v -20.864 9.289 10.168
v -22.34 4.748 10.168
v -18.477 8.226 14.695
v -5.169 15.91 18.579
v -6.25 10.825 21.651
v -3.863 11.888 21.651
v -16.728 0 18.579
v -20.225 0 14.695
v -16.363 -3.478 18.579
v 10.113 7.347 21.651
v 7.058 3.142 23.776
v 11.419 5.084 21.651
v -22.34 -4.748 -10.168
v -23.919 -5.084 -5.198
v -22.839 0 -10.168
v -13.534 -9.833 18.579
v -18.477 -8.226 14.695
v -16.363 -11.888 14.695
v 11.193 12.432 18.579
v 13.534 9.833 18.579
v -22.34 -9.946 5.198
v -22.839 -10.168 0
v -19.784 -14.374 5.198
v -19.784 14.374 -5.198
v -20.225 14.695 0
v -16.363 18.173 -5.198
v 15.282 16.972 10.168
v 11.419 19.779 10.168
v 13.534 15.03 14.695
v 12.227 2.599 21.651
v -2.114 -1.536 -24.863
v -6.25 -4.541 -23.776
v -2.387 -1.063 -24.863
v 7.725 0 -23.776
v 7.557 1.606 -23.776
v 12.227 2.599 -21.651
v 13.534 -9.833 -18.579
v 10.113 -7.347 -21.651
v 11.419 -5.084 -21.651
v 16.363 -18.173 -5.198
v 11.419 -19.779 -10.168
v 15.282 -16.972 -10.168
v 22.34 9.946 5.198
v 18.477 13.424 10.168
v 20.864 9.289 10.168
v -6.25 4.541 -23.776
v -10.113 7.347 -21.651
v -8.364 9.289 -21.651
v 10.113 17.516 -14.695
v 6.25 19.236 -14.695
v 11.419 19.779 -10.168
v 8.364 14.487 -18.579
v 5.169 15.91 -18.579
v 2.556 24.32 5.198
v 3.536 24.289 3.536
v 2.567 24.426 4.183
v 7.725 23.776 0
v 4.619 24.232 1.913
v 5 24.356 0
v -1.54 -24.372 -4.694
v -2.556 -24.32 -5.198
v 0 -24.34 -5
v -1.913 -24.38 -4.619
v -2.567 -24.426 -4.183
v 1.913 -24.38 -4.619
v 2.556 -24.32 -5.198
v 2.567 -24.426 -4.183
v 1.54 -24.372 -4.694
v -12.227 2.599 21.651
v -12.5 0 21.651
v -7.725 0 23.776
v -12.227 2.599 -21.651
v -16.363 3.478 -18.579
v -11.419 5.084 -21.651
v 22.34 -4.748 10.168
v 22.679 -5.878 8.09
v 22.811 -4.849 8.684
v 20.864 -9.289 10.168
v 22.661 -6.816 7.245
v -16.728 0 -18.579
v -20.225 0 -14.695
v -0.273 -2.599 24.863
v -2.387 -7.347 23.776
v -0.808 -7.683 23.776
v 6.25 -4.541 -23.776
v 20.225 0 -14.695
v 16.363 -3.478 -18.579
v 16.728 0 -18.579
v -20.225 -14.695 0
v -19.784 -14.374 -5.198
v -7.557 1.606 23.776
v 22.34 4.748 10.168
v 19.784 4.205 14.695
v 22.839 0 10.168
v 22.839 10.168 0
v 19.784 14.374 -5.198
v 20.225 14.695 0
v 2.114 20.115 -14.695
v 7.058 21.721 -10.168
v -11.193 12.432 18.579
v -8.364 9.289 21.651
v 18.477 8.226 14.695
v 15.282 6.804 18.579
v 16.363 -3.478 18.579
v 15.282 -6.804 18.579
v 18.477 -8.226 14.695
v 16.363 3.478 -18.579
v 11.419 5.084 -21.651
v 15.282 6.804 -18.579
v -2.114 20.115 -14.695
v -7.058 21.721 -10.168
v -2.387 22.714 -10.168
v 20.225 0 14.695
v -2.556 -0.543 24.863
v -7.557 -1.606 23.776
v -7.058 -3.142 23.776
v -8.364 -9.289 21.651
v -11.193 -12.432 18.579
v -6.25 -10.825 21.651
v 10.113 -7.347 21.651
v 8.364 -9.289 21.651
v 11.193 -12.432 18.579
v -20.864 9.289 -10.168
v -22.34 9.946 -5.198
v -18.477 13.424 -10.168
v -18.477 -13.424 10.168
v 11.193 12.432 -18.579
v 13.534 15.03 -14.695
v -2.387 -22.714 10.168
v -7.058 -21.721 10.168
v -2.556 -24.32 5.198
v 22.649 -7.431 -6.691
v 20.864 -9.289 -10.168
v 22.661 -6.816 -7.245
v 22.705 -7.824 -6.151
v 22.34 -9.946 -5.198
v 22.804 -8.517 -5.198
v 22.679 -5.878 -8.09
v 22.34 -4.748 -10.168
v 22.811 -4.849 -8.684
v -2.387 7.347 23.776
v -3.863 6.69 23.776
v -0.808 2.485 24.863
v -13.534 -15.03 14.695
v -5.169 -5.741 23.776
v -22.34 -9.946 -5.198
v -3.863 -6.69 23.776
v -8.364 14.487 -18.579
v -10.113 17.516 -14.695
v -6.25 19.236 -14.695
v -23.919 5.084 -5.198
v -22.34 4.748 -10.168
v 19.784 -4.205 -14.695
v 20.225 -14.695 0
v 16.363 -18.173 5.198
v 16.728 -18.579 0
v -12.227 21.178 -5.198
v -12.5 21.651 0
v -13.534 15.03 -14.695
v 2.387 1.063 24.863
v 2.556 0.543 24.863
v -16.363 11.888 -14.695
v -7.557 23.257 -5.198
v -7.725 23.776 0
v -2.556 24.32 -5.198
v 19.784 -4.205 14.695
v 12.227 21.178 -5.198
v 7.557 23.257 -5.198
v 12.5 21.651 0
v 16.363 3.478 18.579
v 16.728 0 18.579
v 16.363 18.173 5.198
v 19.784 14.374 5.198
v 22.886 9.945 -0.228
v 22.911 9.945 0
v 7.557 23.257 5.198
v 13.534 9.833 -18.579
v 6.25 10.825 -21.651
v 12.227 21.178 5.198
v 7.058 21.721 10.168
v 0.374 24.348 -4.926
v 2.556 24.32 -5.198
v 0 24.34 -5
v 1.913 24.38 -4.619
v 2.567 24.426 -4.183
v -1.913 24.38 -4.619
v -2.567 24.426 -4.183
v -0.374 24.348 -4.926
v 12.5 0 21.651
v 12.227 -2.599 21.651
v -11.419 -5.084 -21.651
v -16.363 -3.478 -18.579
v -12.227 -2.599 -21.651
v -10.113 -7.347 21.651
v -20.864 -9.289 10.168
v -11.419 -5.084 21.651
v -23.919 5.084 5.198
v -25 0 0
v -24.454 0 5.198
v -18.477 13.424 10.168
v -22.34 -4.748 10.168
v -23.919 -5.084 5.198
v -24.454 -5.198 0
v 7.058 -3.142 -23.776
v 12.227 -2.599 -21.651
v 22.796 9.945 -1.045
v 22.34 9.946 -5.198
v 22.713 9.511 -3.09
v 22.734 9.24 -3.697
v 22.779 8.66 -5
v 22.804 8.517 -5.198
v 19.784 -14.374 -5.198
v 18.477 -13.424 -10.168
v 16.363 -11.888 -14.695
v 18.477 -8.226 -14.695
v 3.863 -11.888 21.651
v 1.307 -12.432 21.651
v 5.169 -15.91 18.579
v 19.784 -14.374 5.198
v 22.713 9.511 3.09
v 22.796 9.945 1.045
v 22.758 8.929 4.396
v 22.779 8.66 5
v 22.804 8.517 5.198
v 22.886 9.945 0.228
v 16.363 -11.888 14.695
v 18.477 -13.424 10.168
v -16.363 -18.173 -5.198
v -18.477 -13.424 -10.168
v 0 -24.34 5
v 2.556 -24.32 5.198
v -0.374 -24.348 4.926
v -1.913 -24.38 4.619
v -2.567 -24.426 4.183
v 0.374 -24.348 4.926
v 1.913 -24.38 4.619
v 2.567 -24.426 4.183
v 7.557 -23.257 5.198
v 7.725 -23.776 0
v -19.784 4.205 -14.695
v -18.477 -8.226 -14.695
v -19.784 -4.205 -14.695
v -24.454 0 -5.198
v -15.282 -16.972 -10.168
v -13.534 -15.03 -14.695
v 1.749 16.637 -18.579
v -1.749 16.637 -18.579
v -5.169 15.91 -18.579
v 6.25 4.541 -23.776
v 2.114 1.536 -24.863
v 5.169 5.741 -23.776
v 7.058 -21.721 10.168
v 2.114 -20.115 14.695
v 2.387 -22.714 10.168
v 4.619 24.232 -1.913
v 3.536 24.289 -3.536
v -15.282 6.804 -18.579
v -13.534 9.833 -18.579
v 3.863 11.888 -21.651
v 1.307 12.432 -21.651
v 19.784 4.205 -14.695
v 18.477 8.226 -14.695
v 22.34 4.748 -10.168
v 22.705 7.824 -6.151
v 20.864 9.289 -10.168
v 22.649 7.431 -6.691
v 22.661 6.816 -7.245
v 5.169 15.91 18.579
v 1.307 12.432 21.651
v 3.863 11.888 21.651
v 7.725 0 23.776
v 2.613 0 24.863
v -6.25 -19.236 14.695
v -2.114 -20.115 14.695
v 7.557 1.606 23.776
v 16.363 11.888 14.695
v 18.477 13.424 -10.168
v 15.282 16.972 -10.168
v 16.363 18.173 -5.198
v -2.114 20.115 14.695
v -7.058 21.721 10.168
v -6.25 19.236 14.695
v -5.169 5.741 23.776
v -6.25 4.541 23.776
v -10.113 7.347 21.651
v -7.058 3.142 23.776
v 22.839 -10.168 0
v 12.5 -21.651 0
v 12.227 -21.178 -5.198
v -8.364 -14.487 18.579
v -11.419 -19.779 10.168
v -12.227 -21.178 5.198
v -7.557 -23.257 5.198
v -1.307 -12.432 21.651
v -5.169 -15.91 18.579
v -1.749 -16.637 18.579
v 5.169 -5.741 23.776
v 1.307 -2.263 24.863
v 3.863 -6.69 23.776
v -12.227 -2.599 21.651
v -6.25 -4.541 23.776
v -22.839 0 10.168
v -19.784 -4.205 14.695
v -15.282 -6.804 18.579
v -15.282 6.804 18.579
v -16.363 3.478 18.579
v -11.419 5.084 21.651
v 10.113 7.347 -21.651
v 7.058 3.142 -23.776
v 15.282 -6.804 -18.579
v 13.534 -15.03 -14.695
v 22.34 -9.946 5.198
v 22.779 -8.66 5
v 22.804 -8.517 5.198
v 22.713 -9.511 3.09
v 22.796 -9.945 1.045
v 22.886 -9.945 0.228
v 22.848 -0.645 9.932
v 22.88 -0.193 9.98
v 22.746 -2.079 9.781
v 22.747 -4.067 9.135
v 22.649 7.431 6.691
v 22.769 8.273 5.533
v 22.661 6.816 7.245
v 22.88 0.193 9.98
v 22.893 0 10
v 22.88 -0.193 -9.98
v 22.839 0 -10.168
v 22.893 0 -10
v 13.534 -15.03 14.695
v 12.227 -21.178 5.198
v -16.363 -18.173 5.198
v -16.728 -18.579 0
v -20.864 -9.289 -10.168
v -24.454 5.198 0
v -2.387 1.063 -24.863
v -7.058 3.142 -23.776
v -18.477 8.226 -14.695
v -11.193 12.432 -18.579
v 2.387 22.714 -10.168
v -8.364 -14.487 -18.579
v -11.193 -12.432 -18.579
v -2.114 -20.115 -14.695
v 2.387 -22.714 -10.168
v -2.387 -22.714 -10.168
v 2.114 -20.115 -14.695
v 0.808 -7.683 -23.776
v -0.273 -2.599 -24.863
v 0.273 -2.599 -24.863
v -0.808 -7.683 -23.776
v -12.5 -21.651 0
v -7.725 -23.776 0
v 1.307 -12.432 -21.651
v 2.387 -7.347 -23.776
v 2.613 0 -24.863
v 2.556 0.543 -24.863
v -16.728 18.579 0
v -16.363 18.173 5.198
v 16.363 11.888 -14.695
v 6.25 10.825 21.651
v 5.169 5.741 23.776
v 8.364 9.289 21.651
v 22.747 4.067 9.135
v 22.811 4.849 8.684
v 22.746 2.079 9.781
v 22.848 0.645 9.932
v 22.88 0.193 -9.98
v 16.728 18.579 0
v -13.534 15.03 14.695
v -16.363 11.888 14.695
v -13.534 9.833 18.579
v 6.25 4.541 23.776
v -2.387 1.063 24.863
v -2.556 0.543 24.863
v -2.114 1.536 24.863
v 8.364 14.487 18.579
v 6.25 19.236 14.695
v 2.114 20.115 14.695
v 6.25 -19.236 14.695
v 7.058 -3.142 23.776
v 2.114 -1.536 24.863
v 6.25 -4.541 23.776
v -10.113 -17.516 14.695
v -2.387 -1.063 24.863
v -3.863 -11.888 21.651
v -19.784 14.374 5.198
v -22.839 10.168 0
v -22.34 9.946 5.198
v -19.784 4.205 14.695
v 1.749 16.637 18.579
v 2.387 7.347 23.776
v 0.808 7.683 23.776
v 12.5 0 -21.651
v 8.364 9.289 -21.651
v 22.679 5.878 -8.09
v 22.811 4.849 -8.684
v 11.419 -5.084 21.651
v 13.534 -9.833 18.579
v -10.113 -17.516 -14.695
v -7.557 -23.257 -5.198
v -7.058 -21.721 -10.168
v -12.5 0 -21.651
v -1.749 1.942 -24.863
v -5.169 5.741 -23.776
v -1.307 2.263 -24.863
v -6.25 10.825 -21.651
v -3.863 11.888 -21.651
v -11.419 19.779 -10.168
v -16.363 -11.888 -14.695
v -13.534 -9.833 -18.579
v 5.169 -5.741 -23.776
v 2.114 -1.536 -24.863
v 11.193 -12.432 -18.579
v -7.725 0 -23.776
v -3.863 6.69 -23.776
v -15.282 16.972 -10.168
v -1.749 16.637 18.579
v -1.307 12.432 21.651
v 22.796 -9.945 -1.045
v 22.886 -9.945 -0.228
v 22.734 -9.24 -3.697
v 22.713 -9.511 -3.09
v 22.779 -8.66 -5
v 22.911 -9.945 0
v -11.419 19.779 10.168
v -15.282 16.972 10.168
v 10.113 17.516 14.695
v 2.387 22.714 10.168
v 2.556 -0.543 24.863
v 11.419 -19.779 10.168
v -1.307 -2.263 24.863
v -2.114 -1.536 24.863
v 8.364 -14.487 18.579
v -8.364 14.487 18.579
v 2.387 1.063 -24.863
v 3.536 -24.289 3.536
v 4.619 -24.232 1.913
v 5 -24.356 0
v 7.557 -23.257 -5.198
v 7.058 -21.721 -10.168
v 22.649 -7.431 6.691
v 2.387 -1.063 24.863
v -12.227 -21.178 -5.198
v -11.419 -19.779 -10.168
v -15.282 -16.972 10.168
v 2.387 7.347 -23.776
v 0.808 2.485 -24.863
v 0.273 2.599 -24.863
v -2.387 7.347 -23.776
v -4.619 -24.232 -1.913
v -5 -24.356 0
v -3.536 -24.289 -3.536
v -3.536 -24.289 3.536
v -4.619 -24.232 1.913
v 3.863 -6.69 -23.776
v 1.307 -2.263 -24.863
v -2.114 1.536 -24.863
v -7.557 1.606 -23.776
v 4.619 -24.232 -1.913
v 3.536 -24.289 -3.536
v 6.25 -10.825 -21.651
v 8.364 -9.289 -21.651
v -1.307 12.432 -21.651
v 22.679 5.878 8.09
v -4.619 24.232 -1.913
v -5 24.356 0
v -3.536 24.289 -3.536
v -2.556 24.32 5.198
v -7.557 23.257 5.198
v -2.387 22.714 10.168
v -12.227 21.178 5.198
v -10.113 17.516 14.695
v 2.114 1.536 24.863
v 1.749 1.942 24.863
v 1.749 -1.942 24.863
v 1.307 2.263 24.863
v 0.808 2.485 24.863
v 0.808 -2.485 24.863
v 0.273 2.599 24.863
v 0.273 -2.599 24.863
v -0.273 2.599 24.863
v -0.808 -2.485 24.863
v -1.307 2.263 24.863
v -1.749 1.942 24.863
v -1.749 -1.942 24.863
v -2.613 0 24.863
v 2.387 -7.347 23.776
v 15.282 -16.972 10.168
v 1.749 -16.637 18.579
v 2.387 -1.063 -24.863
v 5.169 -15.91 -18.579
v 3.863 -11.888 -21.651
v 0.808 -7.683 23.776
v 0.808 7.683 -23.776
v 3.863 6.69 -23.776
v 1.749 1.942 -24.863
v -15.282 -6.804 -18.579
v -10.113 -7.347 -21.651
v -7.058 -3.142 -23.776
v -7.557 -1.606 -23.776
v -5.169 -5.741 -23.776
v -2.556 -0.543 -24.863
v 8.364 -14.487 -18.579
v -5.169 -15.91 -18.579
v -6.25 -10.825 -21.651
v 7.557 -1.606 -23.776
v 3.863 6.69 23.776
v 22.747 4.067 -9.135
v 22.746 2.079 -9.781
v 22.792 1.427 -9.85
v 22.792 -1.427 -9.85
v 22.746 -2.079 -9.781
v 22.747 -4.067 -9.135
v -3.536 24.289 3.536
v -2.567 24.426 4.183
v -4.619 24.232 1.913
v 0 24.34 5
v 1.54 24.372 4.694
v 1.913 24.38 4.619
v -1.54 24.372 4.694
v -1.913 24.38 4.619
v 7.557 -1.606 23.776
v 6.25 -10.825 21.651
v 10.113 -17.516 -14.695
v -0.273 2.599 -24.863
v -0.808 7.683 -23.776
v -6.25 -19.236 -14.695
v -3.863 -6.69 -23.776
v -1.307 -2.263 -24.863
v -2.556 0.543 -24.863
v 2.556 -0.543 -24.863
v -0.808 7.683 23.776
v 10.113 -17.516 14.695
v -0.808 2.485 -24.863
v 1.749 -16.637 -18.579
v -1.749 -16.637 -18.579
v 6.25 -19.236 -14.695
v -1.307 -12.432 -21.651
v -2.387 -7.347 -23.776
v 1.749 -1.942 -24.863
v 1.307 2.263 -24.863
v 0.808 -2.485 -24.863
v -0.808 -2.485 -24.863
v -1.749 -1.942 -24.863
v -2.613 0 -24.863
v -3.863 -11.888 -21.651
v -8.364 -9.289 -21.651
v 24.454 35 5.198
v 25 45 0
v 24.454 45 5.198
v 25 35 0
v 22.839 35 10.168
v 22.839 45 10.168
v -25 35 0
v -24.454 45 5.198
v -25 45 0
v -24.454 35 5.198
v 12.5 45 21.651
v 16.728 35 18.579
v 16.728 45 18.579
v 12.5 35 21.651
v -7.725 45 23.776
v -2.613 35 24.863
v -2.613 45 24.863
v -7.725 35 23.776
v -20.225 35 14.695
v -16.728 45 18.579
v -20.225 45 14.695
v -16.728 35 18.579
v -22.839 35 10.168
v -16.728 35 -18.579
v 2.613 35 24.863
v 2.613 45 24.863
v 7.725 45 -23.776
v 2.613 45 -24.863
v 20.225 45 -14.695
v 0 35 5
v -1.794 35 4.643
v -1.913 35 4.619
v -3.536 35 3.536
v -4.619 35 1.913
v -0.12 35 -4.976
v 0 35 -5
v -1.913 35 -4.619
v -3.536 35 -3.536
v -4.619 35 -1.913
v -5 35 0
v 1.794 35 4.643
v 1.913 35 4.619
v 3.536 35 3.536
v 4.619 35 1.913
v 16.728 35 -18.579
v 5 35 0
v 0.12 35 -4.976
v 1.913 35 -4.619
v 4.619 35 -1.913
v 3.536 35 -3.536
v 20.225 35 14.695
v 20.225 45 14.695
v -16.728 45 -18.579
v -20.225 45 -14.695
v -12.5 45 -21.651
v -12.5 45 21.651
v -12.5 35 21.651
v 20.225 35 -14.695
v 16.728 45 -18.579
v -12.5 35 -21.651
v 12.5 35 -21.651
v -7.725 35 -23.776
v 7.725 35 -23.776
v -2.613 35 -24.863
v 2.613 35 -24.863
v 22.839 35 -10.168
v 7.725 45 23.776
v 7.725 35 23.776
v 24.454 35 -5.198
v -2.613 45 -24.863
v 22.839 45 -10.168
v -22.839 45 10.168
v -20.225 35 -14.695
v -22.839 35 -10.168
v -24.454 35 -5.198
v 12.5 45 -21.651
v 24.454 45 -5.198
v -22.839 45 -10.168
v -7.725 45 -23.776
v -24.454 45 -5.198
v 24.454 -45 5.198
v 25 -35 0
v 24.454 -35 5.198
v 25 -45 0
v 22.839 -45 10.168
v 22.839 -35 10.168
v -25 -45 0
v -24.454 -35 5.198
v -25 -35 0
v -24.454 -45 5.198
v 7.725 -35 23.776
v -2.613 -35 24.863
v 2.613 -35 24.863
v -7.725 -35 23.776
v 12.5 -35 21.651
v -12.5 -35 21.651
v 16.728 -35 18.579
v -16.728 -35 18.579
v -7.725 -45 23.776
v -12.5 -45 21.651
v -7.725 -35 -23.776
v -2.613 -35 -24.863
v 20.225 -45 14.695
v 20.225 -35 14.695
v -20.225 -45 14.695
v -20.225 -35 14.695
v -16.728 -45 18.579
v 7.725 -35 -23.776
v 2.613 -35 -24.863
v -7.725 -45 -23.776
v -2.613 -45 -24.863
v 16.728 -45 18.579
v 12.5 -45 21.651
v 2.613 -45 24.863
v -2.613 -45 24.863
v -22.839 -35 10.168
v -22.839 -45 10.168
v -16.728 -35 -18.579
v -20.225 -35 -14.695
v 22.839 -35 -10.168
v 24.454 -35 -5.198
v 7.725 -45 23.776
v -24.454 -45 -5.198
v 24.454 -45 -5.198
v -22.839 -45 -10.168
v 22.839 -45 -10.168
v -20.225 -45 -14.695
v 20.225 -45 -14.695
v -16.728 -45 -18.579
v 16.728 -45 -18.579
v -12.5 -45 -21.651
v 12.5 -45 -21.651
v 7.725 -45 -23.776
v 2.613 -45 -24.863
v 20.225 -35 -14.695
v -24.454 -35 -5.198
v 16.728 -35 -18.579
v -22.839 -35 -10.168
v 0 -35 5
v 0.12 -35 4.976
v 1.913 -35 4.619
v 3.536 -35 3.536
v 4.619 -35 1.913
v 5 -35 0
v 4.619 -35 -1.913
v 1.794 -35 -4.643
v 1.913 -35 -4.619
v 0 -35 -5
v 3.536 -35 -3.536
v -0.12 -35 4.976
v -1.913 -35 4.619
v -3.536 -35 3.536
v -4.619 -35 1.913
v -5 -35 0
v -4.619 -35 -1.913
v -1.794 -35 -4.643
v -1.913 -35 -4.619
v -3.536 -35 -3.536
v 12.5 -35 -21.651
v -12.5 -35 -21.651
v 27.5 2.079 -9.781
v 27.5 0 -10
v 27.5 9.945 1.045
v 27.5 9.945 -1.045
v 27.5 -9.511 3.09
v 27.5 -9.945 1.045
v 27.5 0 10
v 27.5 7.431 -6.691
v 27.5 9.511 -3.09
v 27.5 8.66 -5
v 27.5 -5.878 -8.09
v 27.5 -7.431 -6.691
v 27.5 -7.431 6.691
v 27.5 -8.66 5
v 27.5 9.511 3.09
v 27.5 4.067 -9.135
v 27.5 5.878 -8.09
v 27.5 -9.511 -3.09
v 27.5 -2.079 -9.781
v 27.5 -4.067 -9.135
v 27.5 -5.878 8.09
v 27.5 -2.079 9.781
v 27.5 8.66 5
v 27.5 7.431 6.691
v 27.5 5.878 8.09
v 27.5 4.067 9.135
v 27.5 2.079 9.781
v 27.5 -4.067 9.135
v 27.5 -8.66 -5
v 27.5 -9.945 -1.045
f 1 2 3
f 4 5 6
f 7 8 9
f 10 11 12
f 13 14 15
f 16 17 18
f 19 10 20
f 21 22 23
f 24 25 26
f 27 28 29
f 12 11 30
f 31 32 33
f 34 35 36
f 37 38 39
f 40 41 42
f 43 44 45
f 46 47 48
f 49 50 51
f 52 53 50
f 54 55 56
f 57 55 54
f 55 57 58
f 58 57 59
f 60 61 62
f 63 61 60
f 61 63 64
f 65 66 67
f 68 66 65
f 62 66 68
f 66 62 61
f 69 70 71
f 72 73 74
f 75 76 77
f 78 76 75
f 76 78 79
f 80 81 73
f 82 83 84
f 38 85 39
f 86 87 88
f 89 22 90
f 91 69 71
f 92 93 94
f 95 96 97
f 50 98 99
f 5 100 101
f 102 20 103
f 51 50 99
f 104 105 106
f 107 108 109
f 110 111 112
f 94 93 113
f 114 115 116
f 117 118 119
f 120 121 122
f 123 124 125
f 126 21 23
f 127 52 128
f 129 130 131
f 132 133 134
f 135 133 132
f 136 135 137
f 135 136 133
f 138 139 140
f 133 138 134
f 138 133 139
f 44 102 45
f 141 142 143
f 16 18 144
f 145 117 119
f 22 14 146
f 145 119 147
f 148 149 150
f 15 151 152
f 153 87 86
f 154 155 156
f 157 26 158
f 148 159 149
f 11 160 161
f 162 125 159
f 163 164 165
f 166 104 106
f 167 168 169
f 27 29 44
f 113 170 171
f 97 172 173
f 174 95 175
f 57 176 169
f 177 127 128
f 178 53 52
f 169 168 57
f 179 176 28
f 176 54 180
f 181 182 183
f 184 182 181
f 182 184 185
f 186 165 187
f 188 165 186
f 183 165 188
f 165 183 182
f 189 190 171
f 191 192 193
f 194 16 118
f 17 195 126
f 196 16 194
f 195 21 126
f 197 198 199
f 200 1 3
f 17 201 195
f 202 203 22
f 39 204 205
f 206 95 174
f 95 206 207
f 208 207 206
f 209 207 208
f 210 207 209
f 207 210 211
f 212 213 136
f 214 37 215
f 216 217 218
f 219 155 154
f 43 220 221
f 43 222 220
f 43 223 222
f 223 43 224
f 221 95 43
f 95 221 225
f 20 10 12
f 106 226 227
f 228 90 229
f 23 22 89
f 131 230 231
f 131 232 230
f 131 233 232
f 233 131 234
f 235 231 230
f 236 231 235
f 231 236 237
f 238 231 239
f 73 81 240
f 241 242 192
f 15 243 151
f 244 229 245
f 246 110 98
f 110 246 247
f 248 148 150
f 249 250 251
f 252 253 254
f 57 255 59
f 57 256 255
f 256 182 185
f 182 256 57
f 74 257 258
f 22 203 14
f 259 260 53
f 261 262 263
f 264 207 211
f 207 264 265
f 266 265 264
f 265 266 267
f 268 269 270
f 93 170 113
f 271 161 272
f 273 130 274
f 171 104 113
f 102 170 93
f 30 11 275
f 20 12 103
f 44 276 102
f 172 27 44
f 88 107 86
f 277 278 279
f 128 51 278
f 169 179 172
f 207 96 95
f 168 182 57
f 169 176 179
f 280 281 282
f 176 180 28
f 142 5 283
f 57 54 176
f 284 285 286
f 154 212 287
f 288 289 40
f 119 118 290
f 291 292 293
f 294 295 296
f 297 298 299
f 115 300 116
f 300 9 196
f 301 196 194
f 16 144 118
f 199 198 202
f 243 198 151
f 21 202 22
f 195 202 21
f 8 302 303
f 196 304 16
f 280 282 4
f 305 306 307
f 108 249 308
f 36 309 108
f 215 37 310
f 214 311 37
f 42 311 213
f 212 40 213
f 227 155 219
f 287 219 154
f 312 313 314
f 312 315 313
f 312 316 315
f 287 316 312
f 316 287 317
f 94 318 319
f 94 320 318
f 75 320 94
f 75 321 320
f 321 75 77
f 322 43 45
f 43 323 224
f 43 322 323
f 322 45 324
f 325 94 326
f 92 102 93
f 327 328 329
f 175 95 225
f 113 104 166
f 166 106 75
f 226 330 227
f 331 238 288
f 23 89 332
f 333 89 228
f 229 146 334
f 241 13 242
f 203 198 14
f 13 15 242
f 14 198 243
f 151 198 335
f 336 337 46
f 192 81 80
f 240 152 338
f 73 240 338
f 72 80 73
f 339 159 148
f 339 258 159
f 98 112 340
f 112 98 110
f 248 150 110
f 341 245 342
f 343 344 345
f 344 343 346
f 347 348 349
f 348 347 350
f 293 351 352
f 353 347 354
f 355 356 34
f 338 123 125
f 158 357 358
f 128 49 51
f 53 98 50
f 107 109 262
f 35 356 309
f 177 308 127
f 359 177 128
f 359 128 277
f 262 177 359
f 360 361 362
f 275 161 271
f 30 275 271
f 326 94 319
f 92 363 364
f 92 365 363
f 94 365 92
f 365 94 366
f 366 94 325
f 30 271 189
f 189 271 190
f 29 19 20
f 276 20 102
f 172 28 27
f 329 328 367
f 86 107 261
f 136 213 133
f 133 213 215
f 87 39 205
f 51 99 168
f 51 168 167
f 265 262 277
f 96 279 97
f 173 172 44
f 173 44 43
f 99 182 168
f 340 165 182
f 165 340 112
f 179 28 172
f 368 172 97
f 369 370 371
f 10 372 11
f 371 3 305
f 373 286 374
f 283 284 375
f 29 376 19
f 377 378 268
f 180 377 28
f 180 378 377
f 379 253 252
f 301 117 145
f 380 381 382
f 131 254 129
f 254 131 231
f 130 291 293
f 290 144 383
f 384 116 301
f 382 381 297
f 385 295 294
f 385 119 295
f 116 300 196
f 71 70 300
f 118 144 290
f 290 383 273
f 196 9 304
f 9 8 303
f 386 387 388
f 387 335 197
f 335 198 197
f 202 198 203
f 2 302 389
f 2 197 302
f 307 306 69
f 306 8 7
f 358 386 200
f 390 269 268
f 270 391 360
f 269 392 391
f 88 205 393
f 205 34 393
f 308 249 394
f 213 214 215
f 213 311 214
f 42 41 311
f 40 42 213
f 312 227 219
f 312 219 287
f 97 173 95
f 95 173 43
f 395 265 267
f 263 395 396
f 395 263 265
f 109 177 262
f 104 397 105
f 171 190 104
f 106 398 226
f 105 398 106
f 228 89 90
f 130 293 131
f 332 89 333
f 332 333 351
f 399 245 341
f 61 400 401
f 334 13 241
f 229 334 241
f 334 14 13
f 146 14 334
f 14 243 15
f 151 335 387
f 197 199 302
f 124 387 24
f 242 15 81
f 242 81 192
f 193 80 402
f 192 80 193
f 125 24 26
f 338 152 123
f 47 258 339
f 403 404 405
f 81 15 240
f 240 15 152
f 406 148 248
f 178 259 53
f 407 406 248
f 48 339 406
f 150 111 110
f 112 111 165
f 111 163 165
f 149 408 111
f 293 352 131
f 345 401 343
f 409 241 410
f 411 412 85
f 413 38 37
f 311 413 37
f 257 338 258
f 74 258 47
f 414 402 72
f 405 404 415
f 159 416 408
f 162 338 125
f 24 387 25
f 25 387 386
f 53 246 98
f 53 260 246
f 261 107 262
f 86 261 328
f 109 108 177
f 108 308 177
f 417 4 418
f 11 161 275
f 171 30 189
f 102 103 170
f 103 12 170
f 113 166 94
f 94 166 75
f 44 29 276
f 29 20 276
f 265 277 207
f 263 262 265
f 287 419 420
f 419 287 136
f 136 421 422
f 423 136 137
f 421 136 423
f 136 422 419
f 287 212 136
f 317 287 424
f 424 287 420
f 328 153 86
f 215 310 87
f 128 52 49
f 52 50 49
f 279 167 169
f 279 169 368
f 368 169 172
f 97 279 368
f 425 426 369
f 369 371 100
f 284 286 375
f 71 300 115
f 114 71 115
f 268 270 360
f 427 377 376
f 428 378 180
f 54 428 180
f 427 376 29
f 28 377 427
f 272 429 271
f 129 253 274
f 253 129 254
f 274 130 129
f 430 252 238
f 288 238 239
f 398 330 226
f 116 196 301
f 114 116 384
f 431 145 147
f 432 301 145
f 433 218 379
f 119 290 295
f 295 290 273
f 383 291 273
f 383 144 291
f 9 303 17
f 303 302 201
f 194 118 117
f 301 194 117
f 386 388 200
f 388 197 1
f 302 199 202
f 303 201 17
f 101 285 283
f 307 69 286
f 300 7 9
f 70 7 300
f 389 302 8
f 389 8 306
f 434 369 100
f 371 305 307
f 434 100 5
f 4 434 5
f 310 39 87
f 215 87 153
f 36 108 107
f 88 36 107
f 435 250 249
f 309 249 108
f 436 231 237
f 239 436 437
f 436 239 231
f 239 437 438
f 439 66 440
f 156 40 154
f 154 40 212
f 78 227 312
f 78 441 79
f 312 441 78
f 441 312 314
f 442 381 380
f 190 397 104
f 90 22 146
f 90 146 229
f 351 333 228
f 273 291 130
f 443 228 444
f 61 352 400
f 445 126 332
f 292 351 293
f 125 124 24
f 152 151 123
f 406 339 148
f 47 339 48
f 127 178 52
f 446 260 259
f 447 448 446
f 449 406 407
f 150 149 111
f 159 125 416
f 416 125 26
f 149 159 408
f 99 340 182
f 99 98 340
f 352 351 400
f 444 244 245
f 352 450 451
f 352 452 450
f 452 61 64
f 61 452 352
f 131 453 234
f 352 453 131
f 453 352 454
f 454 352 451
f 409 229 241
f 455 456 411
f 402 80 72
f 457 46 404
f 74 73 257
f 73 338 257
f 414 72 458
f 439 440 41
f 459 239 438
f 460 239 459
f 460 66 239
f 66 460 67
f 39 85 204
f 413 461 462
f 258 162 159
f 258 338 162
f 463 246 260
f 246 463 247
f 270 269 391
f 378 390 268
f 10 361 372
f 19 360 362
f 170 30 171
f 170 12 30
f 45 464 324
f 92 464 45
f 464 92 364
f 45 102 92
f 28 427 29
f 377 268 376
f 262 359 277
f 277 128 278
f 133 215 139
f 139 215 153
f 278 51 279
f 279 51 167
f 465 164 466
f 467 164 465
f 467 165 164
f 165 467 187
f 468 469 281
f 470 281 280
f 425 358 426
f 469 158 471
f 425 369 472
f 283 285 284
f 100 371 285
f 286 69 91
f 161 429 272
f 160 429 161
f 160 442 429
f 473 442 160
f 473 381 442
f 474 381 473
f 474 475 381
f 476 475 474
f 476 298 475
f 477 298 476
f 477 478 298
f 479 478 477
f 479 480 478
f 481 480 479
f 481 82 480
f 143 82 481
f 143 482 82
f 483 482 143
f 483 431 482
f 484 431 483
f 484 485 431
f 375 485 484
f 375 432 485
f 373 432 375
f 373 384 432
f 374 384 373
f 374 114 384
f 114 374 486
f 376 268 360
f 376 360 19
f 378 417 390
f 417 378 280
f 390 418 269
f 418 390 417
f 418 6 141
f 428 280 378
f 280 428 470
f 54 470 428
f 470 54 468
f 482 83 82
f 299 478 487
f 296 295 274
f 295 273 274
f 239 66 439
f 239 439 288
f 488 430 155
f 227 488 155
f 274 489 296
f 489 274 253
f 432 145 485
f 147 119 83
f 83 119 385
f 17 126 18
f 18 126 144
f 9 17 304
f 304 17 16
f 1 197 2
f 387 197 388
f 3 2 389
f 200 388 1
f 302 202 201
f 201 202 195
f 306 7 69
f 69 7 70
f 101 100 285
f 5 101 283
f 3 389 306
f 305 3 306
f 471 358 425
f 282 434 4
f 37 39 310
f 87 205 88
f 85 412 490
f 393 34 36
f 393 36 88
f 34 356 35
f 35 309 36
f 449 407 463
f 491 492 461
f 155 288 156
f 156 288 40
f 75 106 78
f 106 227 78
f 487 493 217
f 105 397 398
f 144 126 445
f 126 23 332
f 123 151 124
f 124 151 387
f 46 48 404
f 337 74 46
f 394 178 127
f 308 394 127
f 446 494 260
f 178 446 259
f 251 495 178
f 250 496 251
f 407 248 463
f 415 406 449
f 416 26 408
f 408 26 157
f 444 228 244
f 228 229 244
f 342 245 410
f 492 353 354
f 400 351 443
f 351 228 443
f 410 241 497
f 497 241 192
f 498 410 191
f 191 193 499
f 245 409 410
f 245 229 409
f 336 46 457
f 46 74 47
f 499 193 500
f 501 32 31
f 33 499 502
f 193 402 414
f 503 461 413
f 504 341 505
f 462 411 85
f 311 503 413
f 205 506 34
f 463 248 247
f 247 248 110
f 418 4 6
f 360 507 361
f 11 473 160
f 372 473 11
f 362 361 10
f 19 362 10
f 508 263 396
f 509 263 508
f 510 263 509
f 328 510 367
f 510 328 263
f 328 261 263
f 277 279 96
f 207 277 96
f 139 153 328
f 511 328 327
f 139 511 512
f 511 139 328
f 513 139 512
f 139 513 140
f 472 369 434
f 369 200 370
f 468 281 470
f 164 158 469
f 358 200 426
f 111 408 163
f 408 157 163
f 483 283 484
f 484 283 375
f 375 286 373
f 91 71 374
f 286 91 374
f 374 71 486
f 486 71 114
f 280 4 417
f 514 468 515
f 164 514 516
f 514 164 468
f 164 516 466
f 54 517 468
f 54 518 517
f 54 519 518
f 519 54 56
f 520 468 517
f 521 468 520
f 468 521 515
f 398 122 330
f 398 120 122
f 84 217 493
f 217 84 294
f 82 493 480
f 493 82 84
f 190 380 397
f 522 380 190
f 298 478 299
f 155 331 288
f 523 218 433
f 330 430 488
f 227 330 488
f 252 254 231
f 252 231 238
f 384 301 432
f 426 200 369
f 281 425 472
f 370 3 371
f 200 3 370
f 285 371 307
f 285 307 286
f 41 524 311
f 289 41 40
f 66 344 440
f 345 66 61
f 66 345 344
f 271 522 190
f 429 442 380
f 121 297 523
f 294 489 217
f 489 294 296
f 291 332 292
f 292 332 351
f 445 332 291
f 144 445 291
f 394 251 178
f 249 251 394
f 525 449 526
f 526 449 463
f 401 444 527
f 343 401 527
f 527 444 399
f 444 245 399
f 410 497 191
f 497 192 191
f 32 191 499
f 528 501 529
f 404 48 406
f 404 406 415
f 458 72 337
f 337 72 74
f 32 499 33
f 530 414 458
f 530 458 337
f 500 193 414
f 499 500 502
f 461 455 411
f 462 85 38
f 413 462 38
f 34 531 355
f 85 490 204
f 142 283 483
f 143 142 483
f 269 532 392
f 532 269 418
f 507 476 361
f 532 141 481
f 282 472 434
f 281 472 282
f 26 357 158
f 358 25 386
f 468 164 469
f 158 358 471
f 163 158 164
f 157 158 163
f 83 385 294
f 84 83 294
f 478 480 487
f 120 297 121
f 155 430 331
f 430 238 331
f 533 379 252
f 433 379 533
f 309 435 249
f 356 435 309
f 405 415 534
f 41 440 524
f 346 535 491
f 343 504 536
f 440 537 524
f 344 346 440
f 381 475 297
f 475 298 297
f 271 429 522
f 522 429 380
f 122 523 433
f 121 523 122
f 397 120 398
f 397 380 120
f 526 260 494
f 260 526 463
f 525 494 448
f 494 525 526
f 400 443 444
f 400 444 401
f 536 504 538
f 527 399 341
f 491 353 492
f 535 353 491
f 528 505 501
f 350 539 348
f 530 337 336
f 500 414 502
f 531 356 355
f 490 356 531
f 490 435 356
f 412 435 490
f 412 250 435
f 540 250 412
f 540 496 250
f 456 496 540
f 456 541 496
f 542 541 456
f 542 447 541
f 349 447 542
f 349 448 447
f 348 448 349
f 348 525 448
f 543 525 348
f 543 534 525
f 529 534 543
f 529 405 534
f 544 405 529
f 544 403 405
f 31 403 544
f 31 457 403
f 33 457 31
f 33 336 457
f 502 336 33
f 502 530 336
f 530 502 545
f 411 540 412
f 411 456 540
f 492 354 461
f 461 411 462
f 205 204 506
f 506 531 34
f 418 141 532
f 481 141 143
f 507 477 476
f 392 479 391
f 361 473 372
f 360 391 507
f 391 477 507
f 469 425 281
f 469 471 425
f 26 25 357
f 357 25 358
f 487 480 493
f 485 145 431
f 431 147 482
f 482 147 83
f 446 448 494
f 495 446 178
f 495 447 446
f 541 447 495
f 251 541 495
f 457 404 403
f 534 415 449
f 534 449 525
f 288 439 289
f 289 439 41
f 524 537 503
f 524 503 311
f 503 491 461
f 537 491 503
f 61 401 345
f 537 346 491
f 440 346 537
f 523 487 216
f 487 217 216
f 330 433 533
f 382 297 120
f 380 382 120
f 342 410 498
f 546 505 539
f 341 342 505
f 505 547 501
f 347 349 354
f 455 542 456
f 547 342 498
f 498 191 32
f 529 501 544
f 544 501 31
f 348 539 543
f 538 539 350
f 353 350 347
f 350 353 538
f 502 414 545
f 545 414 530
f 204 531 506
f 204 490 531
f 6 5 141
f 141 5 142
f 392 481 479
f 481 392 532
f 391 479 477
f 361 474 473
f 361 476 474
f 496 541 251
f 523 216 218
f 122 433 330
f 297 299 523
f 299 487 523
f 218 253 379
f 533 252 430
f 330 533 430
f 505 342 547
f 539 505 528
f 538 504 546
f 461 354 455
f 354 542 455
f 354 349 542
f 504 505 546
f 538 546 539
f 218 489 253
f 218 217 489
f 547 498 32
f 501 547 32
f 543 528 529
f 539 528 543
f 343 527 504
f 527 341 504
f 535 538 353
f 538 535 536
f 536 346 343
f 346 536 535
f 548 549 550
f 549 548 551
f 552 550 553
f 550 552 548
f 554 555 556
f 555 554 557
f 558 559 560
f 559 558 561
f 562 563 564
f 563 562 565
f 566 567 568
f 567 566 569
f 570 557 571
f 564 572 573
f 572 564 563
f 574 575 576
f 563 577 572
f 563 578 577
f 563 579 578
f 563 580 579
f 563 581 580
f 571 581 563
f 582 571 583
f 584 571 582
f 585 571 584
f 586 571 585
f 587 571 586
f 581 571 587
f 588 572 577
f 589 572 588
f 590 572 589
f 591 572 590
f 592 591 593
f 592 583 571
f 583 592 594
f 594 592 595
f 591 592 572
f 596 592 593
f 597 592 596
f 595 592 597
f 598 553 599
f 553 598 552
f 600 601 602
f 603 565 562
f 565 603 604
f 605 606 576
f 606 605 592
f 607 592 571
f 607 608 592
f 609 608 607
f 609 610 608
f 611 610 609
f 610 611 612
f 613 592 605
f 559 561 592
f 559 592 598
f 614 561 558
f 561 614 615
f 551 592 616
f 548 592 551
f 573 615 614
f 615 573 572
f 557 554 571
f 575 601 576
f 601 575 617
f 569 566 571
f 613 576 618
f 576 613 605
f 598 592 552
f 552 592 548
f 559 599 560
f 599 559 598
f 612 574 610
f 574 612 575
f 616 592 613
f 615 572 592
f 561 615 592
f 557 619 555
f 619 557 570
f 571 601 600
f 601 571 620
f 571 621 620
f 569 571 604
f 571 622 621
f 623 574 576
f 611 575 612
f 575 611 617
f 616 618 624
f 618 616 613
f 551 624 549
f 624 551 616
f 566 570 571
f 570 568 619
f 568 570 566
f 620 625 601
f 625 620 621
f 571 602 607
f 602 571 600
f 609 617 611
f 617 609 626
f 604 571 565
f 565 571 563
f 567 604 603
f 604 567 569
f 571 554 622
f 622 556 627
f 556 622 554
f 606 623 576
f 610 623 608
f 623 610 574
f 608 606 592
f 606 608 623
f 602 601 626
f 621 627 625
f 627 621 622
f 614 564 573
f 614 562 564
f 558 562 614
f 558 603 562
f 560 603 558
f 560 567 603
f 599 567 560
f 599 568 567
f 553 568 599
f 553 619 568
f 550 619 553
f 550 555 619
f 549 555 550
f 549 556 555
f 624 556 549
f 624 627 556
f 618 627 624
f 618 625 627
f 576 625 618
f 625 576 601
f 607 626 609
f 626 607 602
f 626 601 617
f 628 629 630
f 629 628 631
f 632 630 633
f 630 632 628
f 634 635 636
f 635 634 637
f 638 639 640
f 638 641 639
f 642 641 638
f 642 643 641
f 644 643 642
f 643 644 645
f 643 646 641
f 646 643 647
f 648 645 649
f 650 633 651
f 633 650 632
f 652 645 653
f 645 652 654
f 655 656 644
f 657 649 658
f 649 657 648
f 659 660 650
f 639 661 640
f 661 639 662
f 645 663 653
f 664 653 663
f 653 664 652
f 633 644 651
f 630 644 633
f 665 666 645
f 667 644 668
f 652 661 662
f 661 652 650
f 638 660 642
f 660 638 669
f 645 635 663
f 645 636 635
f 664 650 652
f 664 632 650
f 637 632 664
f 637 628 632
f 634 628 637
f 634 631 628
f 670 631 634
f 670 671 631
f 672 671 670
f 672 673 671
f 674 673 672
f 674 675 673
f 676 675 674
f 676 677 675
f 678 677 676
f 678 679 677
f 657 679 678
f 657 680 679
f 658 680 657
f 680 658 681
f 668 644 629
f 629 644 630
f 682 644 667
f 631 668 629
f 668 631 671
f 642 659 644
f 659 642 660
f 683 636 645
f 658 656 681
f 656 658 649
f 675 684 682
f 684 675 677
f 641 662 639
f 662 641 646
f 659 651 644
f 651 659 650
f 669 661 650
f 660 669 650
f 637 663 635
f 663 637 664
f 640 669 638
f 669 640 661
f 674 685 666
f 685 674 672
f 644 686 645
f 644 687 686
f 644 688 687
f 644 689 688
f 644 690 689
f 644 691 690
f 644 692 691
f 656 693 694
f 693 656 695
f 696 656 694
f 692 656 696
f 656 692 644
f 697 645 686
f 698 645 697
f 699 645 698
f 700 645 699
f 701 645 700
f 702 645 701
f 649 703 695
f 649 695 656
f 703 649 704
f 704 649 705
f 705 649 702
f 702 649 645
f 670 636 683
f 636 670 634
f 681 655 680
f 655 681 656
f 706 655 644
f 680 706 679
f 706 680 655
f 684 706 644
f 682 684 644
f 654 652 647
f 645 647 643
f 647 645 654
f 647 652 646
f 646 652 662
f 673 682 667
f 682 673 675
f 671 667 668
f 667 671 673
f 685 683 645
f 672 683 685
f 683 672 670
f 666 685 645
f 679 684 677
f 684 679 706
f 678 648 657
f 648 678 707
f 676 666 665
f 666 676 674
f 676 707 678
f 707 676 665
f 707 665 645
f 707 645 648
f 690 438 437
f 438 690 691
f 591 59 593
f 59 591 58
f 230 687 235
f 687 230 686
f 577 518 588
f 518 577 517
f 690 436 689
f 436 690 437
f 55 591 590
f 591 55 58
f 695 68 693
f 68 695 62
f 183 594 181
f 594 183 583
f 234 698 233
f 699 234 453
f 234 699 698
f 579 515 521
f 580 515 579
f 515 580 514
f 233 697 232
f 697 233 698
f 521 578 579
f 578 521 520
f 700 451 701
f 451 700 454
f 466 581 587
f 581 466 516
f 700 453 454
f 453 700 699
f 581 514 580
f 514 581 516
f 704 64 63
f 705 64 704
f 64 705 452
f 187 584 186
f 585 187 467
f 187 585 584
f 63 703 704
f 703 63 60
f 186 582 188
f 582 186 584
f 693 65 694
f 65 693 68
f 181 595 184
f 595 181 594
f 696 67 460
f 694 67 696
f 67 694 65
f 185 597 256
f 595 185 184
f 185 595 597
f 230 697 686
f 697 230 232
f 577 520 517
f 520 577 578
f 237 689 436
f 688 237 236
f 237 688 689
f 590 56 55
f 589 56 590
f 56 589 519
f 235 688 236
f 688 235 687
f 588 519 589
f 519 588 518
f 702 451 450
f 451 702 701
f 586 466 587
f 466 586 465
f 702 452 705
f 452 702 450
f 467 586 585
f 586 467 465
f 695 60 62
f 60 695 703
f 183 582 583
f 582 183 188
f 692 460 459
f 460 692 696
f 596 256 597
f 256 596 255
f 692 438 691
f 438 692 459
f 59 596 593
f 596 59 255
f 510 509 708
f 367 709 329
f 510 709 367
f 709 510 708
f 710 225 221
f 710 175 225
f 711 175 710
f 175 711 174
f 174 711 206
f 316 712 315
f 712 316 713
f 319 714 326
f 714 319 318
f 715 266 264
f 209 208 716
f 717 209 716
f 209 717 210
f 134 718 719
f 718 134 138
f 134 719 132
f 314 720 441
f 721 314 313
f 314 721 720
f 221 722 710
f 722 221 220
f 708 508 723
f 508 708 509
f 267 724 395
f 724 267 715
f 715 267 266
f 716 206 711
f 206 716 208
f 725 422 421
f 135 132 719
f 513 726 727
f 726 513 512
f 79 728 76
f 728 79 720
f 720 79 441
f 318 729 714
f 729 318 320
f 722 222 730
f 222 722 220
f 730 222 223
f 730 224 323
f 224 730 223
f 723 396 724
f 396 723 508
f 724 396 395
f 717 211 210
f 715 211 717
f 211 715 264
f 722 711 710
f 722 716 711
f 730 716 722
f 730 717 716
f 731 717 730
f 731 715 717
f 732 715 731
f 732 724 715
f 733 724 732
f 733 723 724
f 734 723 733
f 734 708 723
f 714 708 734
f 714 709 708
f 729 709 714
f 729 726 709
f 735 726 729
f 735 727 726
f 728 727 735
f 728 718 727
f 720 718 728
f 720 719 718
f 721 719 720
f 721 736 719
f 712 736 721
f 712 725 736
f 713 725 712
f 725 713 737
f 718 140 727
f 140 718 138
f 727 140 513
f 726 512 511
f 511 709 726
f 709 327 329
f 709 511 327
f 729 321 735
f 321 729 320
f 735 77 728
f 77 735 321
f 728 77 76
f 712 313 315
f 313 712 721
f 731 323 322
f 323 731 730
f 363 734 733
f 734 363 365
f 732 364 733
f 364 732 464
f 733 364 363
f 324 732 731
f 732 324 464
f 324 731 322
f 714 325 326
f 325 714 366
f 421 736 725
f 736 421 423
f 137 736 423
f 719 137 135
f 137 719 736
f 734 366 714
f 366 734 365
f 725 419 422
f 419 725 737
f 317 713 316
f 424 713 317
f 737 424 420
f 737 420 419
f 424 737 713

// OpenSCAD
s = 5;

color("white") 
 sphere(r = 5*s);
 
color("black") 
   translate([0,8*s,0]) 
    rotate([90,0,0])
      cylinder(h=2*s, r=5*s, center=true);

color("black") 
  translate([0,-8*s,0]) 
   rotate([90,0,0])
     cylinder(h=2*s, r=5*s, center=true);


color("black") 
  rotate([90,0,0])
    cylinder(h=16*s, r=1*s, center=true);

color("black") 
 translate([4*s,0,0]) 
  rotate([0,90,0]) 
   cylinder(h=3*s, r=2*s, center=true);
